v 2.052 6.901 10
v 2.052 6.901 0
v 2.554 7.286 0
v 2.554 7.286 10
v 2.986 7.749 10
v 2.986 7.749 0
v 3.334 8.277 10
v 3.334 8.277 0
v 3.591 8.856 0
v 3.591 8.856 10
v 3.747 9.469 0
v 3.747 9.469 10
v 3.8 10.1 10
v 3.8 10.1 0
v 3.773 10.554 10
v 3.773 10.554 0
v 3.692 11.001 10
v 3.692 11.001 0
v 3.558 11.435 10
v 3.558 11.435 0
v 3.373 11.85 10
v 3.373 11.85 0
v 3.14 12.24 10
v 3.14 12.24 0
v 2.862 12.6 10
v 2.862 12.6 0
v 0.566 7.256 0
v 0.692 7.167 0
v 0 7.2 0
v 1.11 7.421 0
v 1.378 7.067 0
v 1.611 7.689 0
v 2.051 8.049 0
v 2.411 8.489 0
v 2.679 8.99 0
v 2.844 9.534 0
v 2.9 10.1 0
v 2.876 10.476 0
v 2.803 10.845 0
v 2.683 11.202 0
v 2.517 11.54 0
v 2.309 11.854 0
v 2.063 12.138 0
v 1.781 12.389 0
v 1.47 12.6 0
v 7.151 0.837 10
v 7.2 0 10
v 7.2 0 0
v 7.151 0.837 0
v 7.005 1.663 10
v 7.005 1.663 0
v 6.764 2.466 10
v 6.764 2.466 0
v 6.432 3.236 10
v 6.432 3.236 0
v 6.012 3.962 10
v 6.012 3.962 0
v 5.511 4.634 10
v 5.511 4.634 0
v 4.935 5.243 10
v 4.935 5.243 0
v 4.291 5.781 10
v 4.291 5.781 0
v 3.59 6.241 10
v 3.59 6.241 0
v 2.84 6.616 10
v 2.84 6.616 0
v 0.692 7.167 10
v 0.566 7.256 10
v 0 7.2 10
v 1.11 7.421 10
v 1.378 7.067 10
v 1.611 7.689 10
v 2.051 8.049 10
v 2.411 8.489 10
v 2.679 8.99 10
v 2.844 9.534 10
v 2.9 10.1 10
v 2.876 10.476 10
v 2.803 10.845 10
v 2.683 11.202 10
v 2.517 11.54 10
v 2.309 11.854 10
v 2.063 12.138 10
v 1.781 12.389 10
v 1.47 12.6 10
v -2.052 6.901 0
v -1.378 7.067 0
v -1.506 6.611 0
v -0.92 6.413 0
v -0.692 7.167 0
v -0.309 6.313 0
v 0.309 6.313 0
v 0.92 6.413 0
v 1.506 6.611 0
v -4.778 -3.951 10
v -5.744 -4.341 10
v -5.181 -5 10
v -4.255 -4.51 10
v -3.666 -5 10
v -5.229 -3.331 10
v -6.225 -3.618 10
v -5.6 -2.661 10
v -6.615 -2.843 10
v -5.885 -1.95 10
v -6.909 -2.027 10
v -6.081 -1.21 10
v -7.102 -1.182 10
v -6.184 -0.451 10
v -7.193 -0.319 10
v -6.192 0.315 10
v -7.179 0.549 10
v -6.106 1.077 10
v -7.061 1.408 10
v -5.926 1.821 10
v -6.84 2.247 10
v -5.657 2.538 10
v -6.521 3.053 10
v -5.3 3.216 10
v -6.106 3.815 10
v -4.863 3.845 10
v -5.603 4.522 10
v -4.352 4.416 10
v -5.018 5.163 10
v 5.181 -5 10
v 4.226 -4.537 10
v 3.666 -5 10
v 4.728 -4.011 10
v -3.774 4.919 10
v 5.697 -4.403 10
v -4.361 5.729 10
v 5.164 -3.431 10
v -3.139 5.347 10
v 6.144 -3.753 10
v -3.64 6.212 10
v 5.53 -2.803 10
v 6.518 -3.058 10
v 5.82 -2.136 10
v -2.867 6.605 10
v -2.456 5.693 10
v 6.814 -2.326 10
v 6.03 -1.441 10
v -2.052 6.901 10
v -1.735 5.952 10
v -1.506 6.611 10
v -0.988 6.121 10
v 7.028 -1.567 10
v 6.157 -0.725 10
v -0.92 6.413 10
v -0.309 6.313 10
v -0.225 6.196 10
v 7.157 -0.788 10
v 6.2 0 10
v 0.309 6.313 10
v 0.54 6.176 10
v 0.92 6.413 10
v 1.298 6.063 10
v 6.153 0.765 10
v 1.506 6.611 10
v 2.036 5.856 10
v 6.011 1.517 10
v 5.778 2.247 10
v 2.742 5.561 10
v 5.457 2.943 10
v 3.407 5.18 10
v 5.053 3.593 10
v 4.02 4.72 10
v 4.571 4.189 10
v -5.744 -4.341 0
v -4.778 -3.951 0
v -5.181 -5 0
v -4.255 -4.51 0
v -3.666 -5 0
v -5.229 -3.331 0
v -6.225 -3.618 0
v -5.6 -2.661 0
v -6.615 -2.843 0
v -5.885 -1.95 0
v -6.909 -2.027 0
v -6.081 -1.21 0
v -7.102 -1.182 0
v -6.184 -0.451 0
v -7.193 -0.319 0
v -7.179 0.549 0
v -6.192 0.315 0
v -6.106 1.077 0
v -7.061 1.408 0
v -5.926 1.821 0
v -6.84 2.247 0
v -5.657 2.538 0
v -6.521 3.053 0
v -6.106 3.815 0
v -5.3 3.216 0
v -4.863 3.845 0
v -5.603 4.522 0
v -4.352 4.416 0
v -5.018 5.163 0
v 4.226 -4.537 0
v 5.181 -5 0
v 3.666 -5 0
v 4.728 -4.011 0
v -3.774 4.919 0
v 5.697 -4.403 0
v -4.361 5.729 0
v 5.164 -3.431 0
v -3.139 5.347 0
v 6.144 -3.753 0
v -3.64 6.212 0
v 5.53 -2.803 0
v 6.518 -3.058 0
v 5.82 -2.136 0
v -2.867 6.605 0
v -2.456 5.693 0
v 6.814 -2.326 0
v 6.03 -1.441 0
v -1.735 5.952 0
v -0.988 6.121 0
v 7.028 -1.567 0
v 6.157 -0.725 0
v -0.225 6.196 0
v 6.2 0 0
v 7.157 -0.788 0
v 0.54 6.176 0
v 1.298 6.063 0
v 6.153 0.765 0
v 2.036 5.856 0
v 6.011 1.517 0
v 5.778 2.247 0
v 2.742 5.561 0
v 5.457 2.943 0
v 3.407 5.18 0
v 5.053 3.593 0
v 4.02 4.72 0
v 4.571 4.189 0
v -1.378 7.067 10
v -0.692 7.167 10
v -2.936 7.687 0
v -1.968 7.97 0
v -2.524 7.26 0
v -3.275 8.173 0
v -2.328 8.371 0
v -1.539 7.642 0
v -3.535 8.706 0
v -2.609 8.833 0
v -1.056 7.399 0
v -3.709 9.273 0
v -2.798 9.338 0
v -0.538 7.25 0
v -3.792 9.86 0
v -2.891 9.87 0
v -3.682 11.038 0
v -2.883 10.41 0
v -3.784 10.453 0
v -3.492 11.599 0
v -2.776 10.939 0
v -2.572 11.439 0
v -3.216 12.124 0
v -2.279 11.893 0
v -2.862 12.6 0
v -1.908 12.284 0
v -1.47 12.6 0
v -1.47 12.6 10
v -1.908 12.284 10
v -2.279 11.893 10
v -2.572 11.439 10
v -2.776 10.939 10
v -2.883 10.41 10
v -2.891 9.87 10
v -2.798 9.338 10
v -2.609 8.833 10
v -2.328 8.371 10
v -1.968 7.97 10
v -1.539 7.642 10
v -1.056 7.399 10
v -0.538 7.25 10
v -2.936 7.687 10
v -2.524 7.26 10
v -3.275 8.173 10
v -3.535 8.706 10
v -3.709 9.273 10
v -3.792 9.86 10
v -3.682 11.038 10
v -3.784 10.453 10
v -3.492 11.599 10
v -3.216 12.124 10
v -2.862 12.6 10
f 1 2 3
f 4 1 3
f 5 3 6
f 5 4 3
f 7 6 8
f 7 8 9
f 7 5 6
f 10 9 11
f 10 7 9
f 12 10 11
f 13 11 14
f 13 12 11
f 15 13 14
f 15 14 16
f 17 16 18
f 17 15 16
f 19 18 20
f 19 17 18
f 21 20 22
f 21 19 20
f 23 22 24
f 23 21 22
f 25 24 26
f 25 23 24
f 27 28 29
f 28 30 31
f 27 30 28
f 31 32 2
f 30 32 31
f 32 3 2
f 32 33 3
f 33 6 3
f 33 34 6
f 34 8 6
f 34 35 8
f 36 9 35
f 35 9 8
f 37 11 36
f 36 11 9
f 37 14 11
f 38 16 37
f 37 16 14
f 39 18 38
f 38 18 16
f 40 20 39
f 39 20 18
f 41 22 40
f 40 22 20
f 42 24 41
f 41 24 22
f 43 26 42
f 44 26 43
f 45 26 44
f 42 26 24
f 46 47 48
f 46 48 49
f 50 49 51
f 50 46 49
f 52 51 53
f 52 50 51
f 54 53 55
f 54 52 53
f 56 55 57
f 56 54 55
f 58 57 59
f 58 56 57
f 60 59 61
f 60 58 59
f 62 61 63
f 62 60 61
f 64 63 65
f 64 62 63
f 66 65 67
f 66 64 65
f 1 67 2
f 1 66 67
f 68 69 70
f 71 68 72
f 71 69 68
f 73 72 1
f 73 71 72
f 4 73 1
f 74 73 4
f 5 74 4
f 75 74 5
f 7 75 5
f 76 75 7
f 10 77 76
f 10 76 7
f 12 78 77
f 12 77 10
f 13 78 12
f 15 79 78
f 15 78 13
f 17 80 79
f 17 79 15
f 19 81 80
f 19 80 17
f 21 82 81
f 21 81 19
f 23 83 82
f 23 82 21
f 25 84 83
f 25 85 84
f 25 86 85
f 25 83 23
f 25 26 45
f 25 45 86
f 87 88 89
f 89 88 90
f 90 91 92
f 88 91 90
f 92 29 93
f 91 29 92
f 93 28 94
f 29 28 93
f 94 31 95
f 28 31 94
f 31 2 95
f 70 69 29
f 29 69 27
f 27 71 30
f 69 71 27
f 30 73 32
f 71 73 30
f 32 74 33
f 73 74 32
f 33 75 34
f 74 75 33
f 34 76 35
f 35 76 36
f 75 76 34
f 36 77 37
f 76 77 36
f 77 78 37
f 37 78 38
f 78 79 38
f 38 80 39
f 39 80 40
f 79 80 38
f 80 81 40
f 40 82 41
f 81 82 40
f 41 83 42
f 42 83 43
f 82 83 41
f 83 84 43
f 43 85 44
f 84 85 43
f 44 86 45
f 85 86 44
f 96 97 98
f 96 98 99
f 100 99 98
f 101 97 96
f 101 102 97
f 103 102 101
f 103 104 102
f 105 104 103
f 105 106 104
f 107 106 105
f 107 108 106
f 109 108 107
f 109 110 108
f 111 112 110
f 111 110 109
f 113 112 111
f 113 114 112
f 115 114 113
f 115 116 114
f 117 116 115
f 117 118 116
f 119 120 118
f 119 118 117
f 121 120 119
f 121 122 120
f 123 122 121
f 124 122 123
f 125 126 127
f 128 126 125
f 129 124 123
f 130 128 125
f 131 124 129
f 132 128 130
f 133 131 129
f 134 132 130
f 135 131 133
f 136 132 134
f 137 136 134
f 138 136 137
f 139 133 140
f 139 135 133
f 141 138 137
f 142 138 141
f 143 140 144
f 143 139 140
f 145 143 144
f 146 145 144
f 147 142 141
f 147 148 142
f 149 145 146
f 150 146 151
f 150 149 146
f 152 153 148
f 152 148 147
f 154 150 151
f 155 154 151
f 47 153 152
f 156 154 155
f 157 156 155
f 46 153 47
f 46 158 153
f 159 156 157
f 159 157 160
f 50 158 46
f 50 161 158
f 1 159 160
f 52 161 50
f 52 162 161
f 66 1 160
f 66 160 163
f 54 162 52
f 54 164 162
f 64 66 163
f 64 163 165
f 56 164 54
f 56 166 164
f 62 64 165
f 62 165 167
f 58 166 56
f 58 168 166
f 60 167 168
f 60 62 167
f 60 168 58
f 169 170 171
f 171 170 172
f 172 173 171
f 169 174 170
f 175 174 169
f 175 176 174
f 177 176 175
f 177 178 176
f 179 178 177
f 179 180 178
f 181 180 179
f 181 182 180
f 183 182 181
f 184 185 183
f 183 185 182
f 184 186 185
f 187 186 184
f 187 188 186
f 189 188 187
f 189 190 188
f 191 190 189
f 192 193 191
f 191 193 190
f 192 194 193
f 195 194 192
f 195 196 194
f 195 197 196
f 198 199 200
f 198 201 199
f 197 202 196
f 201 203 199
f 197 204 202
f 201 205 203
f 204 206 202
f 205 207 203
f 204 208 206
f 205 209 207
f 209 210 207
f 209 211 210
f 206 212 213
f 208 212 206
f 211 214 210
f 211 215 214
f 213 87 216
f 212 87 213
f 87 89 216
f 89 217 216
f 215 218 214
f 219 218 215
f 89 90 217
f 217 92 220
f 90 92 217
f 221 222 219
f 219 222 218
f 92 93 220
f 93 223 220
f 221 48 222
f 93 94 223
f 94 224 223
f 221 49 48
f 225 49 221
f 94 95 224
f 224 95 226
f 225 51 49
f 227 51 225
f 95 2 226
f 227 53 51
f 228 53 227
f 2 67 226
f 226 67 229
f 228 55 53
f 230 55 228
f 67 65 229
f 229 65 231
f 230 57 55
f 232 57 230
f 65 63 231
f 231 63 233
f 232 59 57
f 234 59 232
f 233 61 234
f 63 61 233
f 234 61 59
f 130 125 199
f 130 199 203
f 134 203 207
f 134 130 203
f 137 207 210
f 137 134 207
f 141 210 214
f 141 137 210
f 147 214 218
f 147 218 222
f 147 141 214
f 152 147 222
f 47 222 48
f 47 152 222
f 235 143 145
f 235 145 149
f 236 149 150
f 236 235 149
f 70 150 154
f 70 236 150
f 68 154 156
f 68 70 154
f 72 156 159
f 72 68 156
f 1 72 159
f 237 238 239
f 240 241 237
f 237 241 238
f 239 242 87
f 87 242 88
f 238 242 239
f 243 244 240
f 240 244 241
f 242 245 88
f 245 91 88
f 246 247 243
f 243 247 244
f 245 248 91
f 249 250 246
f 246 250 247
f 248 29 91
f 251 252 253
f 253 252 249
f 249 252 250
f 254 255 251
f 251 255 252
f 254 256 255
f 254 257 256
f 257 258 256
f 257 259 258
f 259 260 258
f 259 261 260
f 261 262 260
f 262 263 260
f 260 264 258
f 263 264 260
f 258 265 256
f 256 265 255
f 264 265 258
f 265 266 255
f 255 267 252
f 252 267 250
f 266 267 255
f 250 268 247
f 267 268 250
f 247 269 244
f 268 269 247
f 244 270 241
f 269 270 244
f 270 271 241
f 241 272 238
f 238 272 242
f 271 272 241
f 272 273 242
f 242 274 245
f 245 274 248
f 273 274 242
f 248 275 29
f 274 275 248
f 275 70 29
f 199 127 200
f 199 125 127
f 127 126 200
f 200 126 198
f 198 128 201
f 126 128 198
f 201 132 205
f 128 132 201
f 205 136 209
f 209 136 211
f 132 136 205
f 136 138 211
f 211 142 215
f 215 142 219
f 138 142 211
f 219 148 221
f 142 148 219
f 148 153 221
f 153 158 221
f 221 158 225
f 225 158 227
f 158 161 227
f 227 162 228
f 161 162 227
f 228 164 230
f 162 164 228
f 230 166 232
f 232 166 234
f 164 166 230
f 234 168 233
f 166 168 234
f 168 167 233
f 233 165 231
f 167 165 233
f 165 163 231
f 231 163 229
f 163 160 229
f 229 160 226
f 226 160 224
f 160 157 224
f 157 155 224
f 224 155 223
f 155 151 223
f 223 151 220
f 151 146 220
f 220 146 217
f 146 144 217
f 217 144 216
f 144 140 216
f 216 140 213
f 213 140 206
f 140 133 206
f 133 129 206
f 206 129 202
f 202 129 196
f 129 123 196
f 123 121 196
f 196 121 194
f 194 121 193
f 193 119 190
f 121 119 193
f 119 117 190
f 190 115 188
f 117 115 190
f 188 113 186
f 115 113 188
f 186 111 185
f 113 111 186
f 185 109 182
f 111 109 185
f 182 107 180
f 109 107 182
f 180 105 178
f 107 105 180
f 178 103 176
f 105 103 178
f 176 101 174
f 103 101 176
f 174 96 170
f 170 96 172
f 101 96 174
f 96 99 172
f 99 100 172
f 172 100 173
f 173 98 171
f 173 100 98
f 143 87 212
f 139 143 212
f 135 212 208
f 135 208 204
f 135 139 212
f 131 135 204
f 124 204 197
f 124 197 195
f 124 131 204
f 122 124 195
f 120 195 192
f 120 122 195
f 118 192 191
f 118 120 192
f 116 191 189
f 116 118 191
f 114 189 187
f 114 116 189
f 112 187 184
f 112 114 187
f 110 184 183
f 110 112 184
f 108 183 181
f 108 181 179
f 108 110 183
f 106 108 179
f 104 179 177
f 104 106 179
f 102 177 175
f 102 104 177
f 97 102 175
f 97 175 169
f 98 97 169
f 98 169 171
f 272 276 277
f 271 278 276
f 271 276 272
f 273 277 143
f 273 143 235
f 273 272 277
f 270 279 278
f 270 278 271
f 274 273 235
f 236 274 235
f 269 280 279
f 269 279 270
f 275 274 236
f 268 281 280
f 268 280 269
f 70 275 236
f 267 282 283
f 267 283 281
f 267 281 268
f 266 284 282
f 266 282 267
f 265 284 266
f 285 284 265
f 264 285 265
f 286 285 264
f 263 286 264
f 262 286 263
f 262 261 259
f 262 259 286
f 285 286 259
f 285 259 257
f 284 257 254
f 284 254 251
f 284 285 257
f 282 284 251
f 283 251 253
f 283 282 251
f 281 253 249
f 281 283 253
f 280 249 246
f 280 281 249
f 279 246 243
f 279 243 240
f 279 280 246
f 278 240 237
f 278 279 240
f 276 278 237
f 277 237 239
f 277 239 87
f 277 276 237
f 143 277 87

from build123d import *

# Parameters (mm, degrees)
BOX001_W      = 20
BOX001_H      = 10
BOX001_DEPTH  = 10
TUBE001_R     = 7.2
TUBE001_R_2   = 6.2
TUBE001_DEPTH = 10
BOX_W         = 10
BOX_H         = 10
BOX_DEPTH     = 10
TUBE_R        = 3.8
TUBE_R_2      = 2.9
TUBE_DEPTH    = 10


with BuildPart() as cube001:
    # Box001 → Box001 (new body)
    with BuildSketch(Plane(origin=(-10, -15, 0), x_dir=(1, 0, 0), z_dir=(0, 0, 1))):
        with Locations((10, 5)):
            Rectangle(BOX001_W, BOX001_H)
    extrude(amount=BOX001_DEPTH)


with BuildPart() as cut001:
    # Tube001 → Tube001 (new body)
    with BuildSketch(Plane.XY):
        Circle(TUBE001_R)
        Circle(TUBE001_R_2, mode=Mode.SUBTRACT)
    extrude(amount=TUBE001_DEPTH)

    # Cut001: cut Cube001
    add(cube001.part, mode=Mode.SUBTRACT)


with BuildPart() as cube:
    # Box → Box (new body)
    with BuildSketch(Plane(origin=(-5, 12.6, 0), x_dir=(1, 0, 0), z_dir=(0, 0, 1))):
        with Locations((5, 5)):
            Rectangle(BOX_W, BOX_H)
    extrude(amount=BOX_DEPTH)


with BuildPart() as fusion:
    # Tube → Tube (new body)
    with BuildSketch(Plane(origin=(0, 10.1, 0), x_dir=(1, 0, 0), z_dir=(0, 0, 1))):
        Circle(TUBE_R)
        Circle(TUBE_R_2, mode=Mode.SUBTRACT)
    extrude(amount=TUBE_DEPTH)

    # Cut: cut Cube
    add(cube.part, mode=Mode.SUBTRACT)

    # Fusion: union Cut001
    add(cut001.part)


solid = fusion.part
